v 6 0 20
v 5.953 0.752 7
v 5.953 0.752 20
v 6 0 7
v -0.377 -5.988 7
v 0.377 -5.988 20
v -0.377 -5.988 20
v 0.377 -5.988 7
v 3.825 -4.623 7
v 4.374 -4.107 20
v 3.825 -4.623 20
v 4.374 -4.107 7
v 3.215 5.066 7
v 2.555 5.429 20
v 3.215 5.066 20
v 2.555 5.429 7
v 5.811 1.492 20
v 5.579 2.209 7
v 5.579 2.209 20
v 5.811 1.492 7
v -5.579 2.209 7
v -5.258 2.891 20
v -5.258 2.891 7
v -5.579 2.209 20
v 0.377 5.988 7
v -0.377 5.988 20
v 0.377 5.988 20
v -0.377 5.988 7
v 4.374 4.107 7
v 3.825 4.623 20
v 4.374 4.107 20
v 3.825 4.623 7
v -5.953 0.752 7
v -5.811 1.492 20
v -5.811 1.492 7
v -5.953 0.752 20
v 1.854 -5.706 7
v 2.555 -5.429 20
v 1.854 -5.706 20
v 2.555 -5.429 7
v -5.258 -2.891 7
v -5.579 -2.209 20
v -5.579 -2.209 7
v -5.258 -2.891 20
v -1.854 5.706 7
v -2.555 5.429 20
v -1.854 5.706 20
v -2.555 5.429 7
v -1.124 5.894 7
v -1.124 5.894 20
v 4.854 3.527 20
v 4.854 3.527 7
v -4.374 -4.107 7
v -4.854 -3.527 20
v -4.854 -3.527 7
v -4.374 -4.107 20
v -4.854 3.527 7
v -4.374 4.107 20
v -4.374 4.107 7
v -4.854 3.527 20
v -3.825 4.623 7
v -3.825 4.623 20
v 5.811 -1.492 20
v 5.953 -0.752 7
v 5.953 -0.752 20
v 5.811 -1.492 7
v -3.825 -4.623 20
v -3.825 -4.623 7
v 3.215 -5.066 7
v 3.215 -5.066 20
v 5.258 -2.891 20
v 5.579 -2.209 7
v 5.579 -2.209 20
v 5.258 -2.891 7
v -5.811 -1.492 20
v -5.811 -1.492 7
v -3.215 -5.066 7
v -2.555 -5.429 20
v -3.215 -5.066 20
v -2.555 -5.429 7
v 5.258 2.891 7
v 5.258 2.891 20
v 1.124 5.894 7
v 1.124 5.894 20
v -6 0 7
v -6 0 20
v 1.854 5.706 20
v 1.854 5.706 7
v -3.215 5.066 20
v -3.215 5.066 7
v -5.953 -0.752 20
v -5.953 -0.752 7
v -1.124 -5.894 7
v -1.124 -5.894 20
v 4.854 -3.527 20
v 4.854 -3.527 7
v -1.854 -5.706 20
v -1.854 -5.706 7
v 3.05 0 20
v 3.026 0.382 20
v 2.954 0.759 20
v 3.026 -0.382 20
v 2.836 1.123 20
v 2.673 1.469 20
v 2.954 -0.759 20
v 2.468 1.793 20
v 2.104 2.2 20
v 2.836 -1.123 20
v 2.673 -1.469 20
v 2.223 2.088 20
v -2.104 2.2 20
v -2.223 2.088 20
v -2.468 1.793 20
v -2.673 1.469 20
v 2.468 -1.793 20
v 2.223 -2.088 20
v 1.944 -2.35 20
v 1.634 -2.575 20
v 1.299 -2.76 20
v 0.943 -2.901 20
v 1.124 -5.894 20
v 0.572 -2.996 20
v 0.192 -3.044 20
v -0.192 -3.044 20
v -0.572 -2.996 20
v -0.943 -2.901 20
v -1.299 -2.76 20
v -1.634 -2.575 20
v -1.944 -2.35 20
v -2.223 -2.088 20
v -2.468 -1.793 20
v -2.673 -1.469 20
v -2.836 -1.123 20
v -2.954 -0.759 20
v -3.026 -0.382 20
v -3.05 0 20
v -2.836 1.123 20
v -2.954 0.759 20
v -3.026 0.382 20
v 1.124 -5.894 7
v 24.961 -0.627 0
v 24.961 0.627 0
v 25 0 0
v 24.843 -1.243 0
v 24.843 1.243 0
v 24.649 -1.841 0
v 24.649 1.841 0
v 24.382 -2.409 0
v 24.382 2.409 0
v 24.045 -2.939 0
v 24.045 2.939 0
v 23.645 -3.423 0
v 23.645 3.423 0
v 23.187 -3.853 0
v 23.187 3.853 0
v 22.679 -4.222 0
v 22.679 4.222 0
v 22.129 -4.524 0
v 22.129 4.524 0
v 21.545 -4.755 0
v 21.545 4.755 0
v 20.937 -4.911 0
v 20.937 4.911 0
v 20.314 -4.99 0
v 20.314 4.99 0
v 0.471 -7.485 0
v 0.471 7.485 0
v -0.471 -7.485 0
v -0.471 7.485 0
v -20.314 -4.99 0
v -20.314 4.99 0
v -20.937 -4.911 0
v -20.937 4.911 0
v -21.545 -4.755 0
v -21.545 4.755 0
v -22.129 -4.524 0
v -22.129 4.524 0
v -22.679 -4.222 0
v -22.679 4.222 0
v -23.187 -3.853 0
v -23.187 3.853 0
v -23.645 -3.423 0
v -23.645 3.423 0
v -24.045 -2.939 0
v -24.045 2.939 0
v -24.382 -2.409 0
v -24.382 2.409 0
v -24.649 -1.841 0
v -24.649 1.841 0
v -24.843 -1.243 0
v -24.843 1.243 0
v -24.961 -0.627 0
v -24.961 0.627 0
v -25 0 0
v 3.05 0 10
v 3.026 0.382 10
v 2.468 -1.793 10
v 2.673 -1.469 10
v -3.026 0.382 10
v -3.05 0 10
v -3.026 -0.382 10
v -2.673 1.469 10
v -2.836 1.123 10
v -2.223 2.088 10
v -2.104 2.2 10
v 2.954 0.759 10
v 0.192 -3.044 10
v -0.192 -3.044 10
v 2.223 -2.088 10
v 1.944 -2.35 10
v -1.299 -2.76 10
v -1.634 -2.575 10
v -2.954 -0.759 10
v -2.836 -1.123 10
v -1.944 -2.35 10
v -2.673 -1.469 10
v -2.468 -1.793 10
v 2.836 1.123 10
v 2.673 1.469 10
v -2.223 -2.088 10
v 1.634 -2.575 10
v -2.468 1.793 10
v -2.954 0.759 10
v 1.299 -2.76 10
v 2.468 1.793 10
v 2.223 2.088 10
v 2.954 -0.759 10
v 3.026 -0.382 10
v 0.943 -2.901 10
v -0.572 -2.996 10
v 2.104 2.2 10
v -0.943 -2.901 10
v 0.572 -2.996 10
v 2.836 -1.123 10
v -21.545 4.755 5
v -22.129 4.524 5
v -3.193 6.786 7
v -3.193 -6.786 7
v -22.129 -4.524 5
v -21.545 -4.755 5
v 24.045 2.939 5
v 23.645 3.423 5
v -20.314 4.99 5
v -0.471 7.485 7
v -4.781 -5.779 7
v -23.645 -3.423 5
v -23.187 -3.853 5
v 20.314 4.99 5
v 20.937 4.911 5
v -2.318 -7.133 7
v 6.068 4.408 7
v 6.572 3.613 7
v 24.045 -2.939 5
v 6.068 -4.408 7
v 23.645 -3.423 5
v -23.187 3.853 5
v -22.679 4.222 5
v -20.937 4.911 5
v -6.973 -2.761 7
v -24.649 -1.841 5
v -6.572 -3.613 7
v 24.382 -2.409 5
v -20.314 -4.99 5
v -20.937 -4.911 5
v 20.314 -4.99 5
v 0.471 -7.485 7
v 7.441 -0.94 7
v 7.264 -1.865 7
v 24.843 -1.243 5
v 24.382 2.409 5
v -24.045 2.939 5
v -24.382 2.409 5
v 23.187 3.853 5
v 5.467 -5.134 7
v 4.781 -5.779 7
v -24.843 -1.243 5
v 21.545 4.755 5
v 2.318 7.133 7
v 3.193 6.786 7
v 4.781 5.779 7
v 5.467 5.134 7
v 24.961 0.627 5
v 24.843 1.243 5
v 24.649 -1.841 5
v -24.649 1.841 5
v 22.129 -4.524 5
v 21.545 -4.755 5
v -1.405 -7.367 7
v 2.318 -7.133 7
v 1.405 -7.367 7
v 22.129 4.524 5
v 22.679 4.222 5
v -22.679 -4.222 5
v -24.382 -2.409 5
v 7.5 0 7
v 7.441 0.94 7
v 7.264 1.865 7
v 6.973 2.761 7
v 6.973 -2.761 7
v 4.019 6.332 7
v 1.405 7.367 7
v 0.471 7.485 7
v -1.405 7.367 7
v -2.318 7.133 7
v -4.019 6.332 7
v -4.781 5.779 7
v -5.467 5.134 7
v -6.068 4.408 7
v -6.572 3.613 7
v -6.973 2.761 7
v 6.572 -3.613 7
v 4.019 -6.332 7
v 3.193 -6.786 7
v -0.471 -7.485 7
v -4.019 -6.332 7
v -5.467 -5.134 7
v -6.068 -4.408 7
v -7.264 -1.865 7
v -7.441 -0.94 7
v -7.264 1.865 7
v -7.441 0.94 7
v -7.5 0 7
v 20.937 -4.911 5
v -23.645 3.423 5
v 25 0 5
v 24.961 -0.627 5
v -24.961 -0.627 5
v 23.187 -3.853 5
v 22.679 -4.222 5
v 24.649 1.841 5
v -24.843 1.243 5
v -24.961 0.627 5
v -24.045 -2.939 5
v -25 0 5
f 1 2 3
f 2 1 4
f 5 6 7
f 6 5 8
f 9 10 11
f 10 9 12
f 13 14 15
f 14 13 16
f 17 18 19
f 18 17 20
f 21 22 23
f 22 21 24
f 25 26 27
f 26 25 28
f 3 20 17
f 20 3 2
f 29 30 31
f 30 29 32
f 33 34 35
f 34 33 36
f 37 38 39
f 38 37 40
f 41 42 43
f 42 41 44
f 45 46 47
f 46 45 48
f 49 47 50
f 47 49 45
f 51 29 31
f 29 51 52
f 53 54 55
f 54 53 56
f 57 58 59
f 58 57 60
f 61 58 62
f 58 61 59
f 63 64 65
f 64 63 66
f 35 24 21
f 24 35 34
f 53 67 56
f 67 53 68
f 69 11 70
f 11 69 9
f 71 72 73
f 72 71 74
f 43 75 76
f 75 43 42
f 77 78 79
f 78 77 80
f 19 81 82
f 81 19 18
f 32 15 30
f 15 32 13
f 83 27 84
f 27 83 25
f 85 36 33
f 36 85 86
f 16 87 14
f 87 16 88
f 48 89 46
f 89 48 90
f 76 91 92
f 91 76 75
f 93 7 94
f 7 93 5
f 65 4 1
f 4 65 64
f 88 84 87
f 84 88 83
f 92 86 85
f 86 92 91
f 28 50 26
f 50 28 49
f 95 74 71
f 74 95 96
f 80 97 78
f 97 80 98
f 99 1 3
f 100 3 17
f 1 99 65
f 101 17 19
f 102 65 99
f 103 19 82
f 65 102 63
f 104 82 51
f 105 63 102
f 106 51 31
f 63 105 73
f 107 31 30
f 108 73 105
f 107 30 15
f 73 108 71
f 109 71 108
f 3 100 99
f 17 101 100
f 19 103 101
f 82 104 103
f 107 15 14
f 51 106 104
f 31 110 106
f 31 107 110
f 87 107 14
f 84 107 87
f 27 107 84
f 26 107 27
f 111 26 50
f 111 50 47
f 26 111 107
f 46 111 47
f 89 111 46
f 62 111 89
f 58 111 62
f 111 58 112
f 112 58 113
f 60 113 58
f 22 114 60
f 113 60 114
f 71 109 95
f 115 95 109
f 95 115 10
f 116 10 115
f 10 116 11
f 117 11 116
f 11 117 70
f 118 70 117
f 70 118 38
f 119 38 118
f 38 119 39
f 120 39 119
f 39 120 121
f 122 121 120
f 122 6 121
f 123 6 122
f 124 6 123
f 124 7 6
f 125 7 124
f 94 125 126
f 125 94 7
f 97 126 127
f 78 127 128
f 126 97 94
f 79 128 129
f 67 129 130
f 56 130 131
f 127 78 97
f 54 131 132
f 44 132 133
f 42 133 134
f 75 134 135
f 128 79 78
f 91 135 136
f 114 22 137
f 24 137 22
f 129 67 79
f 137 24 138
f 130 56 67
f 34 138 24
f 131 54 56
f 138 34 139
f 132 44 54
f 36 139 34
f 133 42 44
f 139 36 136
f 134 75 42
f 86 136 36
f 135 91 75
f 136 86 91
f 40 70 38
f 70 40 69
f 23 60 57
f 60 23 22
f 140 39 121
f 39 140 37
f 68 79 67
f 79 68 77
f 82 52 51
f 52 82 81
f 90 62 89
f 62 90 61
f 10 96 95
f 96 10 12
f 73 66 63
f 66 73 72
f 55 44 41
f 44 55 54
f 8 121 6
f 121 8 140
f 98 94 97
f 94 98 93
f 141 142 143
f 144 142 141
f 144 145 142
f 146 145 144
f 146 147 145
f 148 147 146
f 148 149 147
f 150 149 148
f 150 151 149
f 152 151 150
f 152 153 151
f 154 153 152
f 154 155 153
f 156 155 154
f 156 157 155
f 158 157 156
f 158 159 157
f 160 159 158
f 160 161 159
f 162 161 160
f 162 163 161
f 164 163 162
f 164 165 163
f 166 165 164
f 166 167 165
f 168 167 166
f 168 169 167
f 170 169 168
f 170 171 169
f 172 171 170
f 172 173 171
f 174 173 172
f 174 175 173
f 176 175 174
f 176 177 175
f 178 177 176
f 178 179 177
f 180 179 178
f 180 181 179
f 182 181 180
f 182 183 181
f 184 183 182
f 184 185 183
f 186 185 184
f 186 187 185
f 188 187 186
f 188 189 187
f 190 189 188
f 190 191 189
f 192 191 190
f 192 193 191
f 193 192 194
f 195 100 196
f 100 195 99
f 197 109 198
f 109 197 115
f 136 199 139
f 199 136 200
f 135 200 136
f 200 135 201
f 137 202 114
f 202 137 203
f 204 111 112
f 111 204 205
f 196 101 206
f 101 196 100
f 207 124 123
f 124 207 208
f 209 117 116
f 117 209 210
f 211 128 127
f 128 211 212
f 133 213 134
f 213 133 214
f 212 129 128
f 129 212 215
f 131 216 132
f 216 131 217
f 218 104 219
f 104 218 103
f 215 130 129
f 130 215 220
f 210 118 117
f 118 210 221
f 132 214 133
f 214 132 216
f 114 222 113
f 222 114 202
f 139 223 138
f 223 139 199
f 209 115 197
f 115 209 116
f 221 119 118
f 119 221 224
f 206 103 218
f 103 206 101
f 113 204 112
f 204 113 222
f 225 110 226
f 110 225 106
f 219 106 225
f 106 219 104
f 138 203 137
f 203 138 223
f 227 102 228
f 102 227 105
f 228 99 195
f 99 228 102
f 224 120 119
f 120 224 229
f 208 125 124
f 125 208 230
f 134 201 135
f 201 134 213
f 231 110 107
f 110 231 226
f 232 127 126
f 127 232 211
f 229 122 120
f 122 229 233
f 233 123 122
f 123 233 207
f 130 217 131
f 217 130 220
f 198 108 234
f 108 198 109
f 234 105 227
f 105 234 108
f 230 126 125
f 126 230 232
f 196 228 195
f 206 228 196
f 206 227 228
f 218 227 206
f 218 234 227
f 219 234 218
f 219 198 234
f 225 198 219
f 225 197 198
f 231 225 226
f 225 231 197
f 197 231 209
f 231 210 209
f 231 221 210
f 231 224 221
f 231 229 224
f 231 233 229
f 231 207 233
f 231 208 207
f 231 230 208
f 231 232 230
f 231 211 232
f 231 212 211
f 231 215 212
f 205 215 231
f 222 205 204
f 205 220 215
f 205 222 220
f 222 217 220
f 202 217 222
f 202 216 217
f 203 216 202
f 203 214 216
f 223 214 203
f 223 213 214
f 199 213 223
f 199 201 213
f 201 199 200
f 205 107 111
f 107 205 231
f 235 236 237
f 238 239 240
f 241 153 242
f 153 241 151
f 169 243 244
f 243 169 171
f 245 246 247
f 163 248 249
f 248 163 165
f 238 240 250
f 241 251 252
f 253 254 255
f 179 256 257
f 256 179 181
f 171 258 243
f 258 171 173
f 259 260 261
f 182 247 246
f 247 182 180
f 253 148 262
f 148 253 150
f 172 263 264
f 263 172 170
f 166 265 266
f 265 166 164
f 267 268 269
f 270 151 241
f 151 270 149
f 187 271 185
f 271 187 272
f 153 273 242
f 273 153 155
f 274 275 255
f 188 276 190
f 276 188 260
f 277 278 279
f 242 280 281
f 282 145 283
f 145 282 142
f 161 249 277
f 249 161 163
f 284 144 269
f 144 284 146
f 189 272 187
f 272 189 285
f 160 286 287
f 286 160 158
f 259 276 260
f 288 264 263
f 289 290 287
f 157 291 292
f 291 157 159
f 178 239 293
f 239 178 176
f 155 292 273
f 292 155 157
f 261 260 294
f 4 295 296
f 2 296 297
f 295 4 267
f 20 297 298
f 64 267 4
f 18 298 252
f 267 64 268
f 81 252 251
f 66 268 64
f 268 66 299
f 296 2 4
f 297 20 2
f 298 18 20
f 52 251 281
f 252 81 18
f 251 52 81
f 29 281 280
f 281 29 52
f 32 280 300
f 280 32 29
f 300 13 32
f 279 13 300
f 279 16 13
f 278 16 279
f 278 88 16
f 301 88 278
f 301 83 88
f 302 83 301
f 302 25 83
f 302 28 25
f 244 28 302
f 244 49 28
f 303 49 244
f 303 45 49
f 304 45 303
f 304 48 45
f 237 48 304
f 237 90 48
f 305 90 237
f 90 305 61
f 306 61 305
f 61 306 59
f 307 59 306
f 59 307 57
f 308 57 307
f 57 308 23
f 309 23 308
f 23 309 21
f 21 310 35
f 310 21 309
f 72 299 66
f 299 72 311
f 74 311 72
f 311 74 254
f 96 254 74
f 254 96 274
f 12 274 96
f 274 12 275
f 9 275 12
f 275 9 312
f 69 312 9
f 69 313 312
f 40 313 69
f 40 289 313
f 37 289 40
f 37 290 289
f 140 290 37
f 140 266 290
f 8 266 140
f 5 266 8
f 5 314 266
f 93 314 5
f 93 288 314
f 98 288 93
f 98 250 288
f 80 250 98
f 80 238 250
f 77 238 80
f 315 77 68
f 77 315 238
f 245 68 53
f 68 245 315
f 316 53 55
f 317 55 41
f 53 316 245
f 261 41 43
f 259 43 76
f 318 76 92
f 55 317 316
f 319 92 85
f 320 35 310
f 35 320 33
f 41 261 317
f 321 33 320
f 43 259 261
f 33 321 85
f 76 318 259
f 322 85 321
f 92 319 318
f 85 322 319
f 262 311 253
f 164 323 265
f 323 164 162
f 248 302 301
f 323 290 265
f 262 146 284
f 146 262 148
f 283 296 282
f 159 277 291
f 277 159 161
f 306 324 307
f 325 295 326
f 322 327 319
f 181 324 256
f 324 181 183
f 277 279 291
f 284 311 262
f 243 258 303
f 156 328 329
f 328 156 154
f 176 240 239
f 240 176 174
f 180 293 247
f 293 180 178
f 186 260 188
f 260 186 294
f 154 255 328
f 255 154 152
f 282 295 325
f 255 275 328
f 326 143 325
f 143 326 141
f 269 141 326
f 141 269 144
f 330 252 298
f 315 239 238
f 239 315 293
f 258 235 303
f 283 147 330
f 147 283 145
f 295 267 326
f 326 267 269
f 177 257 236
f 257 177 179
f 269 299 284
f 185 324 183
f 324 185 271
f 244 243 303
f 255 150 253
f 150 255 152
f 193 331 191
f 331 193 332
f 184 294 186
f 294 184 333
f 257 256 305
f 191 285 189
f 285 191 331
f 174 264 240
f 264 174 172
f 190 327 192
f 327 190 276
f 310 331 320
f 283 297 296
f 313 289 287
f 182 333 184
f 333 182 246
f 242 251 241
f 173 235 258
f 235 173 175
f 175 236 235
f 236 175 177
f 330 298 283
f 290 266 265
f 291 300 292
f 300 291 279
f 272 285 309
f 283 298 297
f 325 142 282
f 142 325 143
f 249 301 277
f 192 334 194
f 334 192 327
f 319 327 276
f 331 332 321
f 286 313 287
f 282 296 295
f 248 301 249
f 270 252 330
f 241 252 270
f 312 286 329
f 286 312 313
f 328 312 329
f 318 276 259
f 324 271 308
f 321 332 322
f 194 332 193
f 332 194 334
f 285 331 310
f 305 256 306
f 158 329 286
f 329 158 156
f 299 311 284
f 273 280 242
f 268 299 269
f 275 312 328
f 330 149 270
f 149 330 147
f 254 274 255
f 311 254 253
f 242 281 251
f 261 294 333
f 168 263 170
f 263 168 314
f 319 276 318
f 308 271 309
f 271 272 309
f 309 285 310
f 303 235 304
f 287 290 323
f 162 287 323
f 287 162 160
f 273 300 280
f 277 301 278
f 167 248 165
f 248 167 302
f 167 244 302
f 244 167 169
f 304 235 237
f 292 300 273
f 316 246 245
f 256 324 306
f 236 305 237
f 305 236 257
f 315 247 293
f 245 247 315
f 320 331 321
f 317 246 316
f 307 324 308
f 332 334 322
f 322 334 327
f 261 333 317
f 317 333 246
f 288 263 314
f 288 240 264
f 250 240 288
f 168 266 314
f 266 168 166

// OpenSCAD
$fn=50;
module normcube(c) {
    // normalize a cube to be positioned around the origin, like a cylinder.
    translate([-c.x/2,-c.y/2,0]) cube(c);
}

// 6mm 12mm 5.55mm

HH=20;
module stick() {
  difference() {
    cylinder(HH,d=12);
    translate([0,0,10]) cylinder(HH,d=6.1);
  }
  #translate([-3,2.2,0]) cube([6,2,HH]);
}

module knob() {
  hull() {
  cylinder(7,d=15);
    for (qq=[-1,1]) {
      translate([qq*20,0,0]) cylinder(5,d=10);
    }
  }
}

module stove_handle() {
  stick();
  knob();
}

//stick();
stove_handle();
